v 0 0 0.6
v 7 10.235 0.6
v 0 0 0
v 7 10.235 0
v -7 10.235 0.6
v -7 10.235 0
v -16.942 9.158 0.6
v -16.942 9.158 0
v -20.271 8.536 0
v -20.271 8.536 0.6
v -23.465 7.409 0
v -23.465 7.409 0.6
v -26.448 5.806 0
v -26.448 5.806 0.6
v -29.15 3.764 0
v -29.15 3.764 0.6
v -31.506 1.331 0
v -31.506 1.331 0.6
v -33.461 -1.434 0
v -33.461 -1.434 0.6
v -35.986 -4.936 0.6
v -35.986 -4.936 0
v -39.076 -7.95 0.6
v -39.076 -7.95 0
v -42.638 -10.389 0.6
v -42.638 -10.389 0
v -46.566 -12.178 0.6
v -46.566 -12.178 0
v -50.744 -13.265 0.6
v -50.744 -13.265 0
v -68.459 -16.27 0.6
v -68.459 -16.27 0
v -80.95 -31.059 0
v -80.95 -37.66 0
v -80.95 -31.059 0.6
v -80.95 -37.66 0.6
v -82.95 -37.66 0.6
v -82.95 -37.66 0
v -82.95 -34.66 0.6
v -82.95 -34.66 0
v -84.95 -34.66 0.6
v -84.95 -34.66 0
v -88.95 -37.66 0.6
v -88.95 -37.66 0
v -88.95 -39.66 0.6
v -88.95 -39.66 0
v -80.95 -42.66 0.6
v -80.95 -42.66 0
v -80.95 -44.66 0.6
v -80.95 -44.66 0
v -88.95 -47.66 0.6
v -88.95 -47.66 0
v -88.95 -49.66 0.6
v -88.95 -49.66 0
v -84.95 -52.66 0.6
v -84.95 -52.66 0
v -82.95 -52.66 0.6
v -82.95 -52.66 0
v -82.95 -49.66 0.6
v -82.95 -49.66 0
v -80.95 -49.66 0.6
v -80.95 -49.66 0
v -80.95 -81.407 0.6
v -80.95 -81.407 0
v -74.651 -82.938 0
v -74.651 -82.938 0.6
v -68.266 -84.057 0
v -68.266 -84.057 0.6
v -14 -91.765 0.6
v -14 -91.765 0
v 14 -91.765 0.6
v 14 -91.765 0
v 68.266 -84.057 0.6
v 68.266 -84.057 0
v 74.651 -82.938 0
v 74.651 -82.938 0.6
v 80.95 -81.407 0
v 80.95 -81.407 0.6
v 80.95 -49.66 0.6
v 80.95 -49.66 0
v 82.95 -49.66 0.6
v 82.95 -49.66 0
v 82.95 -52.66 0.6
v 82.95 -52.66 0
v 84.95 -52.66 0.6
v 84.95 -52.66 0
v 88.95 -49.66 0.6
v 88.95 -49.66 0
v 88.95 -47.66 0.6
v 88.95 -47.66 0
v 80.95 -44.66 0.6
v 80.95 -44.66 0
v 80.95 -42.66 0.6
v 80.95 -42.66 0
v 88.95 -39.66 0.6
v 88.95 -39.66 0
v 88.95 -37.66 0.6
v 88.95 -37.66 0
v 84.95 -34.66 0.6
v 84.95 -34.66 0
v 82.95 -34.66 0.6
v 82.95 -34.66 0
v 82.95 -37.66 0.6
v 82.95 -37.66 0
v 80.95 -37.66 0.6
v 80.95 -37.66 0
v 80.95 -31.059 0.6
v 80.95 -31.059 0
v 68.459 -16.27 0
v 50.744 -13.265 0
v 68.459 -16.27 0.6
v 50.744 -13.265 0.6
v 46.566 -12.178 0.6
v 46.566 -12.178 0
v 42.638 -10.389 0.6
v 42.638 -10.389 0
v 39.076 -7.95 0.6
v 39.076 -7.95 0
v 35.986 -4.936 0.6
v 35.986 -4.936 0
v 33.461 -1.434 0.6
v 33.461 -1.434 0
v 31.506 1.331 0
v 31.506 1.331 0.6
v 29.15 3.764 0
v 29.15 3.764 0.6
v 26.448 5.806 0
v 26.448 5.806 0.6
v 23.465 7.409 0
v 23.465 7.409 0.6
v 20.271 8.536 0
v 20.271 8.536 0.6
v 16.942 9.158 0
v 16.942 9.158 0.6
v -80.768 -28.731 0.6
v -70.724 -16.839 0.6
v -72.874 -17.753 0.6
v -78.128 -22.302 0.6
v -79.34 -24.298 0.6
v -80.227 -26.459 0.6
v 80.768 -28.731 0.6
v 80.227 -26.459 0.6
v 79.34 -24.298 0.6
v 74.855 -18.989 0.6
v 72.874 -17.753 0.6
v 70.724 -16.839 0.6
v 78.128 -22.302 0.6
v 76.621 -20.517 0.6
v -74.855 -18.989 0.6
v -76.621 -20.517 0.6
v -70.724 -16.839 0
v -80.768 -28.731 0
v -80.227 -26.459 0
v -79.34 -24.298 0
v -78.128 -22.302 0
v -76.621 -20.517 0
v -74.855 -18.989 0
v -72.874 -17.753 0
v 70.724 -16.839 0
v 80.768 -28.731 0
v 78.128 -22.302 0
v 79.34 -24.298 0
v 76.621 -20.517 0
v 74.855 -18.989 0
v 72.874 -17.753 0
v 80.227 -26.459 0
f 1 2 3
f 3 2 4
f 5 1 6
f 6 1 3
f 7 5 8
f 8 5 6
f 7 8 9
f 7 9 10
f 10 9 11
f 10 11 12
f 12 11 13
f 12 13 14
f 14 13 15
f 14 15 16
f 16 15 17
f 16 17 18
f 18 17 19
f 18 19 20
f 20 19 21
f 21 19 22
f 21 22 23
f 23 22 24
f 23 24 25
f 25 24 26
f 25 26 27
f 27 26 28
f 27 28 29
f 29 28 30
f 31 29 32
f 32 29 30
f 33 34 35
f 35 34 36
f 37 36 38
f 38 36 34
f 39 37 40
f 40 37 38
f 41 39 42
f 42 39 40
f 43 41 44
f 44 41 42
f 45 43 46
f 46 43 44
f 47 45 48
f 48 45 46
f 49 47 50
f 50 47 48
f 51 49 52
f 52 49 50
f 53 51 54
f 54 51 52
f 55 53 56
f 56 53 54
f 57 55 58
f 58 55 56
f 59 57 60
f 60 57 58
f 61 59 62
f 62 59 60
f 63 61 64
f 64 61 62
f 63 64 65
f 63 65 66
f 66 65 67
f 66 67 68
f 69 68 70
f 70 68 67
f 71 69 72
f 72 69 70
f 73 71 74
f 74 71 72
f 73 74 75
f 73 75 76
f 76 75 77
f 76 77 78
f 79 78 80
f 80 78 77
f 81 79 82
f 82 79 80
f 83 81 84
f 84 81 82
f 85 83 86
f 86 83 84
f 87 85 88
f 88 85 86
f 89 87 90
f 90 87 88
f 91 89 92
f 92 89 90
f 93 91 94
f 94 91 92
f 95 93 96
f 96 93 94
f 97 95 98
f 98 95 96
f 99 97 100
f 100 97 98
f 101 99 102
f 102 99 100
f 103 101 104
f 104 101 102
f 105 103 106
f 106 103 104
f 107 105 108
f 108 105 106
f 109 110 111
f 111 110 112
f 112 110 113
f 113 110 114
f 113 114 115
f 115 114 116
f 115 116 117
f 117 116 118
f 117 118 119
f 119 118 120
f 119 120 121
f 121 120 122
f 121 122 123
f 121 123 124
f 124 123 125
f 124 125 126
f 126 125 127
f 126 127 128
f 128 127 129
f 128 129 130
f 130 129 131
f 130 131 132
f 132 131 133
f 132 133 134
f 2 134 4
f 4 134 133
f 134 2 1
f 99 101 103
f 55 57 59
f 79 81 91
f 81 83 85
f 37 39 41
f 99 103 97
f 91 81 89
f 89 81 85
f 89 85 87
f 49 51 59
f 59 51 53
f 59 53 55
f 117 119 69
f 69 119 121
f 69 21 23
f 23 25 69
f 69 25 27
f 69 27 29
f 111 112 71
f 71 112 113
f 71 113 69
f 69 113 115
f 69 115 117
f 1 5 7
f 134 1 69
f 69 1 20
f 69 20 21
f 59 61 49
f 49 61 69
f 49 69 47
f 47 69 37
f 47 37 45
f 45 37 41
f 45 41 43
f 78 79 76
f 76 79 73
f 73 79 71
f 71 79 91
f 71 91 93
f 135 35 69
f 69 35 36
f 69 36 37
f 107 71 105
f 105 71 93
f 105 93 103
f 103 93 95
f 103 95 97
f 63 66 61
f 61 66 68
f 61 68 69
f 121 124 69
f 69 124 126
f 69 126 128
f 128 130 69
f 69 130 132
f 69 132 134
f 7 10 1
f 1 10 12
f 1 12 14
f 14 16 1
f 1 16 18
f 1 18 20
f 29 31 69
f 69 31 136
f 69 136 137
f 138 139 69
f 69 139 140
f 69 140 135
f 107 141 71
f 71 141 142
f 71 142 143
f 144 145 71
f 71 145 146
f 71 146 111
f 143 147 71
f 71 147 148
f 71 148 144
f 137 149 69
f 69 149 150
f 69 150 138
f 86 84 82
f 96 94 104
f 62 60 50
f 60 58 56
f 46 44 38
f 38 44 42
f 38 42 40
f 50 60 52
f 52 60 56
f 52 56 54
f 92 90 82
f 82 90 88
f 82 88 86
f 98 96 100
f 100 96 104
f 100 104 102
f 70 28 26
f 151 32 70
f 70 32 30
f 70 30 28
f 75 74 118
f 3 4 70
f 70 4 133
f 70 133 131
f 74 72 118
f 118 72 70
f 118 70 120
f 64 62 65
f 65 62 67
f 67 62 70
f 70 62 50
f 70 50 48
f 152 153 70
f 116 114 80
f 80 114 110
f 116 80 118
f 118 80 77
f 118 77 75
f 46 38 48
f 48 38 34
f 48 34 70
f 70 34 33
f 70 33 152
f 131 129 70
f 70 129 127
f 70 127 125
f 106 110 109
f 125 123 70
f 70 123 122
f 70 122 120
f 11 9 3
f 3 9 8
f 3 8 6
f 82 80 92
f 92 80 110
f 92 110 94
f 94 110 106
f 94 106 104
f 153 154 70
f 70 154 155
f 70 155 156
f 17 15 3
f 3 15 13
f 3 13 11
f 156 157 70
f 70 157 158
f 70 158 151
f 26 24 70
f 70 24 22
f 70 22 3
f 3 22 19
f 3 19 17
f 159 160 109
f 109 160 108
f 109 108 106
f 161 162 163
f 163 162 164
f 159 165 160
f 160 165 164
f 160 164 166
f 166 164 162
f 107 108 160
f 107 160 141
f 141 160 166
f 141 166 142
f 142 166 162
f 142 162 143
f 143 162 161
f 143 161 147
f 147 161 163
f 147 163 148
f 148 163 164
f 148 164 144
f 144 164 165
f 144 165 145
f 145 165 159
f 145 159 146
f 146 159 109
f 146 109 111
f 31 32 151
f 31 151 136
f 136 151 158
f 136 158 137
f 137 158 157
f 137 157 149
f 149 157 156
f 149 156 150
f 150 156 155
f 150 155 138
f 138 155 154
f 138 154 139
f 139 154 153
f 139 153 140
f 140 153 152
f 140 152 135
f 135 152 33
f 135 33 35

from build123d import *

# Parameters (mm, degrees)
MAIN_SHAPE_DEPTH = 0.6
FILLET1_R        = 15


with BuildPart() as part:
    # Sketch2 → Main Shape (new body)
    with BuildSketch(Plane.XY):
        with BuildLine():
            Line((-14, -91.764766734), (14, -91.764766734))
            Line((14, -91.764766734), (68.266232563, -84.05670244))
            ThreePointArc((68.266232563, -84.05670244), (74.651075824, -82.937586842), (80.95, -81.407162906))
            Line((80.95, -81.407162906), (80.95, -49.66))
            Line((80.95, -49.66), (82.95, -49.66))
            Line((82.95, -49.66), (82.95, -52.66))
            Line((82.95, -52.66), (84.95, -52.66))
            Line((84.95, -52.66), (88.95, -49.66))
            Line((88.95, -49.66), (88.95, -47.66))
            Line((88.95, -47.66), (80.95, -44.66))
            Line((80.95, -44.66), (80.95, -42.66))
            Line((80.95, -42.66), (88.95, -39.66))
            Line((88.95, -39.66), (88.95, -37.66))
            Line((88.95, -37.66), (84.95, -34.66))
            Line((84.95, -34.66), (82.95, -34.66))
            Line((82.95, -34.66), (82.95, -37.66))
            Line((82.95, -37.66), (80.95, -37.66))
            Line((80.95, -37.66), (80.95, -18.389599053))
            Line((80.95, -18.389599053), (50.74391922, -13.264766734))
            ThreePointArc((50.74391922, -13.264766734), (40.804108255, -9.246591688), (33.461443341, -1.434367632))
            ThreePointArc((33.461443341, -1.434367632), (26.448172688, 5.805997675), (16.941855461, 9.15842781))
            Line((16.941855461, 9.15842781), (7, 10.235233266))
            Line((7, 10.235233266), (0, 0))
            Line((0, 0), (-7, 10.235233266))
            Line((-7, 10.235233266), (-16.941855461, 9.15842781))
            ThreePointArc((-16.941855461, 9.15842781), (-26.448172688, 5.805997675), (-33.461443341, -1.434367632))
            ThreePointArc((-33.461443341, -1.434367632), (-40.804108255, -9.246591688), (-50.74391922, -13.264766734))
            Line((-50.74391922, -13.264766734), (-80.95, -18.389599053))
            Line((-80.95, -18.389599053), (-80.95, -37.66))
            Line((-80.95, -37.66), (-82.95, -37.66))
            Line((-82.95, -37.66), (-82.95, -34.66))
            Line((-82.95, -34.66), (-84.95, -34.66))
            Line((-84.95, -34.66), (-88.95, -37.66))
            Line((-88.95, -37.66), (-88.95, -39.66))
            Line((-88.95, -39.66), (-80.95, -42.66))
            Line((-80.95, -42.66), (-80.95, -44.66))
            Line((-80.95, -44.66), (-88.95, -47.66))
            Line((-88.95, -47.66), (-88.95, -49.66))
            Line((-88.95, -49.66), (-84.95, -52.66))
            Line((-84.95, -52.66), (-82.95, -52.66))
            Line((-82.95, -52.66), (-82.95, -49.66))
            Line((-82.95, -49.66), (-80.95, -49.66))
            Line((-80.95, -49.66), (-80.95, -81.407162906))
            ThreePointArc((-80.95, -81.407162906), (-74.651075824, -82.937586842), (-68.266232563, -84.05670244))
            Line((-68.266232563, -84.05670244), (-14, -91.764766734))
        make_face()
    extrude(amount=MAIN_SHAPE_DEPTH)

    # Fillet1
    fillet1_edges = [part.edges().sort_by_distance(p)[0] for p in [
        (80.95, -18.389599053, 0.3),
        (-80.95, -18.389599053, 0.3),
    ]]
    fillet(fillet1_edges, radius=FILLET1_R)


solid = part.part
